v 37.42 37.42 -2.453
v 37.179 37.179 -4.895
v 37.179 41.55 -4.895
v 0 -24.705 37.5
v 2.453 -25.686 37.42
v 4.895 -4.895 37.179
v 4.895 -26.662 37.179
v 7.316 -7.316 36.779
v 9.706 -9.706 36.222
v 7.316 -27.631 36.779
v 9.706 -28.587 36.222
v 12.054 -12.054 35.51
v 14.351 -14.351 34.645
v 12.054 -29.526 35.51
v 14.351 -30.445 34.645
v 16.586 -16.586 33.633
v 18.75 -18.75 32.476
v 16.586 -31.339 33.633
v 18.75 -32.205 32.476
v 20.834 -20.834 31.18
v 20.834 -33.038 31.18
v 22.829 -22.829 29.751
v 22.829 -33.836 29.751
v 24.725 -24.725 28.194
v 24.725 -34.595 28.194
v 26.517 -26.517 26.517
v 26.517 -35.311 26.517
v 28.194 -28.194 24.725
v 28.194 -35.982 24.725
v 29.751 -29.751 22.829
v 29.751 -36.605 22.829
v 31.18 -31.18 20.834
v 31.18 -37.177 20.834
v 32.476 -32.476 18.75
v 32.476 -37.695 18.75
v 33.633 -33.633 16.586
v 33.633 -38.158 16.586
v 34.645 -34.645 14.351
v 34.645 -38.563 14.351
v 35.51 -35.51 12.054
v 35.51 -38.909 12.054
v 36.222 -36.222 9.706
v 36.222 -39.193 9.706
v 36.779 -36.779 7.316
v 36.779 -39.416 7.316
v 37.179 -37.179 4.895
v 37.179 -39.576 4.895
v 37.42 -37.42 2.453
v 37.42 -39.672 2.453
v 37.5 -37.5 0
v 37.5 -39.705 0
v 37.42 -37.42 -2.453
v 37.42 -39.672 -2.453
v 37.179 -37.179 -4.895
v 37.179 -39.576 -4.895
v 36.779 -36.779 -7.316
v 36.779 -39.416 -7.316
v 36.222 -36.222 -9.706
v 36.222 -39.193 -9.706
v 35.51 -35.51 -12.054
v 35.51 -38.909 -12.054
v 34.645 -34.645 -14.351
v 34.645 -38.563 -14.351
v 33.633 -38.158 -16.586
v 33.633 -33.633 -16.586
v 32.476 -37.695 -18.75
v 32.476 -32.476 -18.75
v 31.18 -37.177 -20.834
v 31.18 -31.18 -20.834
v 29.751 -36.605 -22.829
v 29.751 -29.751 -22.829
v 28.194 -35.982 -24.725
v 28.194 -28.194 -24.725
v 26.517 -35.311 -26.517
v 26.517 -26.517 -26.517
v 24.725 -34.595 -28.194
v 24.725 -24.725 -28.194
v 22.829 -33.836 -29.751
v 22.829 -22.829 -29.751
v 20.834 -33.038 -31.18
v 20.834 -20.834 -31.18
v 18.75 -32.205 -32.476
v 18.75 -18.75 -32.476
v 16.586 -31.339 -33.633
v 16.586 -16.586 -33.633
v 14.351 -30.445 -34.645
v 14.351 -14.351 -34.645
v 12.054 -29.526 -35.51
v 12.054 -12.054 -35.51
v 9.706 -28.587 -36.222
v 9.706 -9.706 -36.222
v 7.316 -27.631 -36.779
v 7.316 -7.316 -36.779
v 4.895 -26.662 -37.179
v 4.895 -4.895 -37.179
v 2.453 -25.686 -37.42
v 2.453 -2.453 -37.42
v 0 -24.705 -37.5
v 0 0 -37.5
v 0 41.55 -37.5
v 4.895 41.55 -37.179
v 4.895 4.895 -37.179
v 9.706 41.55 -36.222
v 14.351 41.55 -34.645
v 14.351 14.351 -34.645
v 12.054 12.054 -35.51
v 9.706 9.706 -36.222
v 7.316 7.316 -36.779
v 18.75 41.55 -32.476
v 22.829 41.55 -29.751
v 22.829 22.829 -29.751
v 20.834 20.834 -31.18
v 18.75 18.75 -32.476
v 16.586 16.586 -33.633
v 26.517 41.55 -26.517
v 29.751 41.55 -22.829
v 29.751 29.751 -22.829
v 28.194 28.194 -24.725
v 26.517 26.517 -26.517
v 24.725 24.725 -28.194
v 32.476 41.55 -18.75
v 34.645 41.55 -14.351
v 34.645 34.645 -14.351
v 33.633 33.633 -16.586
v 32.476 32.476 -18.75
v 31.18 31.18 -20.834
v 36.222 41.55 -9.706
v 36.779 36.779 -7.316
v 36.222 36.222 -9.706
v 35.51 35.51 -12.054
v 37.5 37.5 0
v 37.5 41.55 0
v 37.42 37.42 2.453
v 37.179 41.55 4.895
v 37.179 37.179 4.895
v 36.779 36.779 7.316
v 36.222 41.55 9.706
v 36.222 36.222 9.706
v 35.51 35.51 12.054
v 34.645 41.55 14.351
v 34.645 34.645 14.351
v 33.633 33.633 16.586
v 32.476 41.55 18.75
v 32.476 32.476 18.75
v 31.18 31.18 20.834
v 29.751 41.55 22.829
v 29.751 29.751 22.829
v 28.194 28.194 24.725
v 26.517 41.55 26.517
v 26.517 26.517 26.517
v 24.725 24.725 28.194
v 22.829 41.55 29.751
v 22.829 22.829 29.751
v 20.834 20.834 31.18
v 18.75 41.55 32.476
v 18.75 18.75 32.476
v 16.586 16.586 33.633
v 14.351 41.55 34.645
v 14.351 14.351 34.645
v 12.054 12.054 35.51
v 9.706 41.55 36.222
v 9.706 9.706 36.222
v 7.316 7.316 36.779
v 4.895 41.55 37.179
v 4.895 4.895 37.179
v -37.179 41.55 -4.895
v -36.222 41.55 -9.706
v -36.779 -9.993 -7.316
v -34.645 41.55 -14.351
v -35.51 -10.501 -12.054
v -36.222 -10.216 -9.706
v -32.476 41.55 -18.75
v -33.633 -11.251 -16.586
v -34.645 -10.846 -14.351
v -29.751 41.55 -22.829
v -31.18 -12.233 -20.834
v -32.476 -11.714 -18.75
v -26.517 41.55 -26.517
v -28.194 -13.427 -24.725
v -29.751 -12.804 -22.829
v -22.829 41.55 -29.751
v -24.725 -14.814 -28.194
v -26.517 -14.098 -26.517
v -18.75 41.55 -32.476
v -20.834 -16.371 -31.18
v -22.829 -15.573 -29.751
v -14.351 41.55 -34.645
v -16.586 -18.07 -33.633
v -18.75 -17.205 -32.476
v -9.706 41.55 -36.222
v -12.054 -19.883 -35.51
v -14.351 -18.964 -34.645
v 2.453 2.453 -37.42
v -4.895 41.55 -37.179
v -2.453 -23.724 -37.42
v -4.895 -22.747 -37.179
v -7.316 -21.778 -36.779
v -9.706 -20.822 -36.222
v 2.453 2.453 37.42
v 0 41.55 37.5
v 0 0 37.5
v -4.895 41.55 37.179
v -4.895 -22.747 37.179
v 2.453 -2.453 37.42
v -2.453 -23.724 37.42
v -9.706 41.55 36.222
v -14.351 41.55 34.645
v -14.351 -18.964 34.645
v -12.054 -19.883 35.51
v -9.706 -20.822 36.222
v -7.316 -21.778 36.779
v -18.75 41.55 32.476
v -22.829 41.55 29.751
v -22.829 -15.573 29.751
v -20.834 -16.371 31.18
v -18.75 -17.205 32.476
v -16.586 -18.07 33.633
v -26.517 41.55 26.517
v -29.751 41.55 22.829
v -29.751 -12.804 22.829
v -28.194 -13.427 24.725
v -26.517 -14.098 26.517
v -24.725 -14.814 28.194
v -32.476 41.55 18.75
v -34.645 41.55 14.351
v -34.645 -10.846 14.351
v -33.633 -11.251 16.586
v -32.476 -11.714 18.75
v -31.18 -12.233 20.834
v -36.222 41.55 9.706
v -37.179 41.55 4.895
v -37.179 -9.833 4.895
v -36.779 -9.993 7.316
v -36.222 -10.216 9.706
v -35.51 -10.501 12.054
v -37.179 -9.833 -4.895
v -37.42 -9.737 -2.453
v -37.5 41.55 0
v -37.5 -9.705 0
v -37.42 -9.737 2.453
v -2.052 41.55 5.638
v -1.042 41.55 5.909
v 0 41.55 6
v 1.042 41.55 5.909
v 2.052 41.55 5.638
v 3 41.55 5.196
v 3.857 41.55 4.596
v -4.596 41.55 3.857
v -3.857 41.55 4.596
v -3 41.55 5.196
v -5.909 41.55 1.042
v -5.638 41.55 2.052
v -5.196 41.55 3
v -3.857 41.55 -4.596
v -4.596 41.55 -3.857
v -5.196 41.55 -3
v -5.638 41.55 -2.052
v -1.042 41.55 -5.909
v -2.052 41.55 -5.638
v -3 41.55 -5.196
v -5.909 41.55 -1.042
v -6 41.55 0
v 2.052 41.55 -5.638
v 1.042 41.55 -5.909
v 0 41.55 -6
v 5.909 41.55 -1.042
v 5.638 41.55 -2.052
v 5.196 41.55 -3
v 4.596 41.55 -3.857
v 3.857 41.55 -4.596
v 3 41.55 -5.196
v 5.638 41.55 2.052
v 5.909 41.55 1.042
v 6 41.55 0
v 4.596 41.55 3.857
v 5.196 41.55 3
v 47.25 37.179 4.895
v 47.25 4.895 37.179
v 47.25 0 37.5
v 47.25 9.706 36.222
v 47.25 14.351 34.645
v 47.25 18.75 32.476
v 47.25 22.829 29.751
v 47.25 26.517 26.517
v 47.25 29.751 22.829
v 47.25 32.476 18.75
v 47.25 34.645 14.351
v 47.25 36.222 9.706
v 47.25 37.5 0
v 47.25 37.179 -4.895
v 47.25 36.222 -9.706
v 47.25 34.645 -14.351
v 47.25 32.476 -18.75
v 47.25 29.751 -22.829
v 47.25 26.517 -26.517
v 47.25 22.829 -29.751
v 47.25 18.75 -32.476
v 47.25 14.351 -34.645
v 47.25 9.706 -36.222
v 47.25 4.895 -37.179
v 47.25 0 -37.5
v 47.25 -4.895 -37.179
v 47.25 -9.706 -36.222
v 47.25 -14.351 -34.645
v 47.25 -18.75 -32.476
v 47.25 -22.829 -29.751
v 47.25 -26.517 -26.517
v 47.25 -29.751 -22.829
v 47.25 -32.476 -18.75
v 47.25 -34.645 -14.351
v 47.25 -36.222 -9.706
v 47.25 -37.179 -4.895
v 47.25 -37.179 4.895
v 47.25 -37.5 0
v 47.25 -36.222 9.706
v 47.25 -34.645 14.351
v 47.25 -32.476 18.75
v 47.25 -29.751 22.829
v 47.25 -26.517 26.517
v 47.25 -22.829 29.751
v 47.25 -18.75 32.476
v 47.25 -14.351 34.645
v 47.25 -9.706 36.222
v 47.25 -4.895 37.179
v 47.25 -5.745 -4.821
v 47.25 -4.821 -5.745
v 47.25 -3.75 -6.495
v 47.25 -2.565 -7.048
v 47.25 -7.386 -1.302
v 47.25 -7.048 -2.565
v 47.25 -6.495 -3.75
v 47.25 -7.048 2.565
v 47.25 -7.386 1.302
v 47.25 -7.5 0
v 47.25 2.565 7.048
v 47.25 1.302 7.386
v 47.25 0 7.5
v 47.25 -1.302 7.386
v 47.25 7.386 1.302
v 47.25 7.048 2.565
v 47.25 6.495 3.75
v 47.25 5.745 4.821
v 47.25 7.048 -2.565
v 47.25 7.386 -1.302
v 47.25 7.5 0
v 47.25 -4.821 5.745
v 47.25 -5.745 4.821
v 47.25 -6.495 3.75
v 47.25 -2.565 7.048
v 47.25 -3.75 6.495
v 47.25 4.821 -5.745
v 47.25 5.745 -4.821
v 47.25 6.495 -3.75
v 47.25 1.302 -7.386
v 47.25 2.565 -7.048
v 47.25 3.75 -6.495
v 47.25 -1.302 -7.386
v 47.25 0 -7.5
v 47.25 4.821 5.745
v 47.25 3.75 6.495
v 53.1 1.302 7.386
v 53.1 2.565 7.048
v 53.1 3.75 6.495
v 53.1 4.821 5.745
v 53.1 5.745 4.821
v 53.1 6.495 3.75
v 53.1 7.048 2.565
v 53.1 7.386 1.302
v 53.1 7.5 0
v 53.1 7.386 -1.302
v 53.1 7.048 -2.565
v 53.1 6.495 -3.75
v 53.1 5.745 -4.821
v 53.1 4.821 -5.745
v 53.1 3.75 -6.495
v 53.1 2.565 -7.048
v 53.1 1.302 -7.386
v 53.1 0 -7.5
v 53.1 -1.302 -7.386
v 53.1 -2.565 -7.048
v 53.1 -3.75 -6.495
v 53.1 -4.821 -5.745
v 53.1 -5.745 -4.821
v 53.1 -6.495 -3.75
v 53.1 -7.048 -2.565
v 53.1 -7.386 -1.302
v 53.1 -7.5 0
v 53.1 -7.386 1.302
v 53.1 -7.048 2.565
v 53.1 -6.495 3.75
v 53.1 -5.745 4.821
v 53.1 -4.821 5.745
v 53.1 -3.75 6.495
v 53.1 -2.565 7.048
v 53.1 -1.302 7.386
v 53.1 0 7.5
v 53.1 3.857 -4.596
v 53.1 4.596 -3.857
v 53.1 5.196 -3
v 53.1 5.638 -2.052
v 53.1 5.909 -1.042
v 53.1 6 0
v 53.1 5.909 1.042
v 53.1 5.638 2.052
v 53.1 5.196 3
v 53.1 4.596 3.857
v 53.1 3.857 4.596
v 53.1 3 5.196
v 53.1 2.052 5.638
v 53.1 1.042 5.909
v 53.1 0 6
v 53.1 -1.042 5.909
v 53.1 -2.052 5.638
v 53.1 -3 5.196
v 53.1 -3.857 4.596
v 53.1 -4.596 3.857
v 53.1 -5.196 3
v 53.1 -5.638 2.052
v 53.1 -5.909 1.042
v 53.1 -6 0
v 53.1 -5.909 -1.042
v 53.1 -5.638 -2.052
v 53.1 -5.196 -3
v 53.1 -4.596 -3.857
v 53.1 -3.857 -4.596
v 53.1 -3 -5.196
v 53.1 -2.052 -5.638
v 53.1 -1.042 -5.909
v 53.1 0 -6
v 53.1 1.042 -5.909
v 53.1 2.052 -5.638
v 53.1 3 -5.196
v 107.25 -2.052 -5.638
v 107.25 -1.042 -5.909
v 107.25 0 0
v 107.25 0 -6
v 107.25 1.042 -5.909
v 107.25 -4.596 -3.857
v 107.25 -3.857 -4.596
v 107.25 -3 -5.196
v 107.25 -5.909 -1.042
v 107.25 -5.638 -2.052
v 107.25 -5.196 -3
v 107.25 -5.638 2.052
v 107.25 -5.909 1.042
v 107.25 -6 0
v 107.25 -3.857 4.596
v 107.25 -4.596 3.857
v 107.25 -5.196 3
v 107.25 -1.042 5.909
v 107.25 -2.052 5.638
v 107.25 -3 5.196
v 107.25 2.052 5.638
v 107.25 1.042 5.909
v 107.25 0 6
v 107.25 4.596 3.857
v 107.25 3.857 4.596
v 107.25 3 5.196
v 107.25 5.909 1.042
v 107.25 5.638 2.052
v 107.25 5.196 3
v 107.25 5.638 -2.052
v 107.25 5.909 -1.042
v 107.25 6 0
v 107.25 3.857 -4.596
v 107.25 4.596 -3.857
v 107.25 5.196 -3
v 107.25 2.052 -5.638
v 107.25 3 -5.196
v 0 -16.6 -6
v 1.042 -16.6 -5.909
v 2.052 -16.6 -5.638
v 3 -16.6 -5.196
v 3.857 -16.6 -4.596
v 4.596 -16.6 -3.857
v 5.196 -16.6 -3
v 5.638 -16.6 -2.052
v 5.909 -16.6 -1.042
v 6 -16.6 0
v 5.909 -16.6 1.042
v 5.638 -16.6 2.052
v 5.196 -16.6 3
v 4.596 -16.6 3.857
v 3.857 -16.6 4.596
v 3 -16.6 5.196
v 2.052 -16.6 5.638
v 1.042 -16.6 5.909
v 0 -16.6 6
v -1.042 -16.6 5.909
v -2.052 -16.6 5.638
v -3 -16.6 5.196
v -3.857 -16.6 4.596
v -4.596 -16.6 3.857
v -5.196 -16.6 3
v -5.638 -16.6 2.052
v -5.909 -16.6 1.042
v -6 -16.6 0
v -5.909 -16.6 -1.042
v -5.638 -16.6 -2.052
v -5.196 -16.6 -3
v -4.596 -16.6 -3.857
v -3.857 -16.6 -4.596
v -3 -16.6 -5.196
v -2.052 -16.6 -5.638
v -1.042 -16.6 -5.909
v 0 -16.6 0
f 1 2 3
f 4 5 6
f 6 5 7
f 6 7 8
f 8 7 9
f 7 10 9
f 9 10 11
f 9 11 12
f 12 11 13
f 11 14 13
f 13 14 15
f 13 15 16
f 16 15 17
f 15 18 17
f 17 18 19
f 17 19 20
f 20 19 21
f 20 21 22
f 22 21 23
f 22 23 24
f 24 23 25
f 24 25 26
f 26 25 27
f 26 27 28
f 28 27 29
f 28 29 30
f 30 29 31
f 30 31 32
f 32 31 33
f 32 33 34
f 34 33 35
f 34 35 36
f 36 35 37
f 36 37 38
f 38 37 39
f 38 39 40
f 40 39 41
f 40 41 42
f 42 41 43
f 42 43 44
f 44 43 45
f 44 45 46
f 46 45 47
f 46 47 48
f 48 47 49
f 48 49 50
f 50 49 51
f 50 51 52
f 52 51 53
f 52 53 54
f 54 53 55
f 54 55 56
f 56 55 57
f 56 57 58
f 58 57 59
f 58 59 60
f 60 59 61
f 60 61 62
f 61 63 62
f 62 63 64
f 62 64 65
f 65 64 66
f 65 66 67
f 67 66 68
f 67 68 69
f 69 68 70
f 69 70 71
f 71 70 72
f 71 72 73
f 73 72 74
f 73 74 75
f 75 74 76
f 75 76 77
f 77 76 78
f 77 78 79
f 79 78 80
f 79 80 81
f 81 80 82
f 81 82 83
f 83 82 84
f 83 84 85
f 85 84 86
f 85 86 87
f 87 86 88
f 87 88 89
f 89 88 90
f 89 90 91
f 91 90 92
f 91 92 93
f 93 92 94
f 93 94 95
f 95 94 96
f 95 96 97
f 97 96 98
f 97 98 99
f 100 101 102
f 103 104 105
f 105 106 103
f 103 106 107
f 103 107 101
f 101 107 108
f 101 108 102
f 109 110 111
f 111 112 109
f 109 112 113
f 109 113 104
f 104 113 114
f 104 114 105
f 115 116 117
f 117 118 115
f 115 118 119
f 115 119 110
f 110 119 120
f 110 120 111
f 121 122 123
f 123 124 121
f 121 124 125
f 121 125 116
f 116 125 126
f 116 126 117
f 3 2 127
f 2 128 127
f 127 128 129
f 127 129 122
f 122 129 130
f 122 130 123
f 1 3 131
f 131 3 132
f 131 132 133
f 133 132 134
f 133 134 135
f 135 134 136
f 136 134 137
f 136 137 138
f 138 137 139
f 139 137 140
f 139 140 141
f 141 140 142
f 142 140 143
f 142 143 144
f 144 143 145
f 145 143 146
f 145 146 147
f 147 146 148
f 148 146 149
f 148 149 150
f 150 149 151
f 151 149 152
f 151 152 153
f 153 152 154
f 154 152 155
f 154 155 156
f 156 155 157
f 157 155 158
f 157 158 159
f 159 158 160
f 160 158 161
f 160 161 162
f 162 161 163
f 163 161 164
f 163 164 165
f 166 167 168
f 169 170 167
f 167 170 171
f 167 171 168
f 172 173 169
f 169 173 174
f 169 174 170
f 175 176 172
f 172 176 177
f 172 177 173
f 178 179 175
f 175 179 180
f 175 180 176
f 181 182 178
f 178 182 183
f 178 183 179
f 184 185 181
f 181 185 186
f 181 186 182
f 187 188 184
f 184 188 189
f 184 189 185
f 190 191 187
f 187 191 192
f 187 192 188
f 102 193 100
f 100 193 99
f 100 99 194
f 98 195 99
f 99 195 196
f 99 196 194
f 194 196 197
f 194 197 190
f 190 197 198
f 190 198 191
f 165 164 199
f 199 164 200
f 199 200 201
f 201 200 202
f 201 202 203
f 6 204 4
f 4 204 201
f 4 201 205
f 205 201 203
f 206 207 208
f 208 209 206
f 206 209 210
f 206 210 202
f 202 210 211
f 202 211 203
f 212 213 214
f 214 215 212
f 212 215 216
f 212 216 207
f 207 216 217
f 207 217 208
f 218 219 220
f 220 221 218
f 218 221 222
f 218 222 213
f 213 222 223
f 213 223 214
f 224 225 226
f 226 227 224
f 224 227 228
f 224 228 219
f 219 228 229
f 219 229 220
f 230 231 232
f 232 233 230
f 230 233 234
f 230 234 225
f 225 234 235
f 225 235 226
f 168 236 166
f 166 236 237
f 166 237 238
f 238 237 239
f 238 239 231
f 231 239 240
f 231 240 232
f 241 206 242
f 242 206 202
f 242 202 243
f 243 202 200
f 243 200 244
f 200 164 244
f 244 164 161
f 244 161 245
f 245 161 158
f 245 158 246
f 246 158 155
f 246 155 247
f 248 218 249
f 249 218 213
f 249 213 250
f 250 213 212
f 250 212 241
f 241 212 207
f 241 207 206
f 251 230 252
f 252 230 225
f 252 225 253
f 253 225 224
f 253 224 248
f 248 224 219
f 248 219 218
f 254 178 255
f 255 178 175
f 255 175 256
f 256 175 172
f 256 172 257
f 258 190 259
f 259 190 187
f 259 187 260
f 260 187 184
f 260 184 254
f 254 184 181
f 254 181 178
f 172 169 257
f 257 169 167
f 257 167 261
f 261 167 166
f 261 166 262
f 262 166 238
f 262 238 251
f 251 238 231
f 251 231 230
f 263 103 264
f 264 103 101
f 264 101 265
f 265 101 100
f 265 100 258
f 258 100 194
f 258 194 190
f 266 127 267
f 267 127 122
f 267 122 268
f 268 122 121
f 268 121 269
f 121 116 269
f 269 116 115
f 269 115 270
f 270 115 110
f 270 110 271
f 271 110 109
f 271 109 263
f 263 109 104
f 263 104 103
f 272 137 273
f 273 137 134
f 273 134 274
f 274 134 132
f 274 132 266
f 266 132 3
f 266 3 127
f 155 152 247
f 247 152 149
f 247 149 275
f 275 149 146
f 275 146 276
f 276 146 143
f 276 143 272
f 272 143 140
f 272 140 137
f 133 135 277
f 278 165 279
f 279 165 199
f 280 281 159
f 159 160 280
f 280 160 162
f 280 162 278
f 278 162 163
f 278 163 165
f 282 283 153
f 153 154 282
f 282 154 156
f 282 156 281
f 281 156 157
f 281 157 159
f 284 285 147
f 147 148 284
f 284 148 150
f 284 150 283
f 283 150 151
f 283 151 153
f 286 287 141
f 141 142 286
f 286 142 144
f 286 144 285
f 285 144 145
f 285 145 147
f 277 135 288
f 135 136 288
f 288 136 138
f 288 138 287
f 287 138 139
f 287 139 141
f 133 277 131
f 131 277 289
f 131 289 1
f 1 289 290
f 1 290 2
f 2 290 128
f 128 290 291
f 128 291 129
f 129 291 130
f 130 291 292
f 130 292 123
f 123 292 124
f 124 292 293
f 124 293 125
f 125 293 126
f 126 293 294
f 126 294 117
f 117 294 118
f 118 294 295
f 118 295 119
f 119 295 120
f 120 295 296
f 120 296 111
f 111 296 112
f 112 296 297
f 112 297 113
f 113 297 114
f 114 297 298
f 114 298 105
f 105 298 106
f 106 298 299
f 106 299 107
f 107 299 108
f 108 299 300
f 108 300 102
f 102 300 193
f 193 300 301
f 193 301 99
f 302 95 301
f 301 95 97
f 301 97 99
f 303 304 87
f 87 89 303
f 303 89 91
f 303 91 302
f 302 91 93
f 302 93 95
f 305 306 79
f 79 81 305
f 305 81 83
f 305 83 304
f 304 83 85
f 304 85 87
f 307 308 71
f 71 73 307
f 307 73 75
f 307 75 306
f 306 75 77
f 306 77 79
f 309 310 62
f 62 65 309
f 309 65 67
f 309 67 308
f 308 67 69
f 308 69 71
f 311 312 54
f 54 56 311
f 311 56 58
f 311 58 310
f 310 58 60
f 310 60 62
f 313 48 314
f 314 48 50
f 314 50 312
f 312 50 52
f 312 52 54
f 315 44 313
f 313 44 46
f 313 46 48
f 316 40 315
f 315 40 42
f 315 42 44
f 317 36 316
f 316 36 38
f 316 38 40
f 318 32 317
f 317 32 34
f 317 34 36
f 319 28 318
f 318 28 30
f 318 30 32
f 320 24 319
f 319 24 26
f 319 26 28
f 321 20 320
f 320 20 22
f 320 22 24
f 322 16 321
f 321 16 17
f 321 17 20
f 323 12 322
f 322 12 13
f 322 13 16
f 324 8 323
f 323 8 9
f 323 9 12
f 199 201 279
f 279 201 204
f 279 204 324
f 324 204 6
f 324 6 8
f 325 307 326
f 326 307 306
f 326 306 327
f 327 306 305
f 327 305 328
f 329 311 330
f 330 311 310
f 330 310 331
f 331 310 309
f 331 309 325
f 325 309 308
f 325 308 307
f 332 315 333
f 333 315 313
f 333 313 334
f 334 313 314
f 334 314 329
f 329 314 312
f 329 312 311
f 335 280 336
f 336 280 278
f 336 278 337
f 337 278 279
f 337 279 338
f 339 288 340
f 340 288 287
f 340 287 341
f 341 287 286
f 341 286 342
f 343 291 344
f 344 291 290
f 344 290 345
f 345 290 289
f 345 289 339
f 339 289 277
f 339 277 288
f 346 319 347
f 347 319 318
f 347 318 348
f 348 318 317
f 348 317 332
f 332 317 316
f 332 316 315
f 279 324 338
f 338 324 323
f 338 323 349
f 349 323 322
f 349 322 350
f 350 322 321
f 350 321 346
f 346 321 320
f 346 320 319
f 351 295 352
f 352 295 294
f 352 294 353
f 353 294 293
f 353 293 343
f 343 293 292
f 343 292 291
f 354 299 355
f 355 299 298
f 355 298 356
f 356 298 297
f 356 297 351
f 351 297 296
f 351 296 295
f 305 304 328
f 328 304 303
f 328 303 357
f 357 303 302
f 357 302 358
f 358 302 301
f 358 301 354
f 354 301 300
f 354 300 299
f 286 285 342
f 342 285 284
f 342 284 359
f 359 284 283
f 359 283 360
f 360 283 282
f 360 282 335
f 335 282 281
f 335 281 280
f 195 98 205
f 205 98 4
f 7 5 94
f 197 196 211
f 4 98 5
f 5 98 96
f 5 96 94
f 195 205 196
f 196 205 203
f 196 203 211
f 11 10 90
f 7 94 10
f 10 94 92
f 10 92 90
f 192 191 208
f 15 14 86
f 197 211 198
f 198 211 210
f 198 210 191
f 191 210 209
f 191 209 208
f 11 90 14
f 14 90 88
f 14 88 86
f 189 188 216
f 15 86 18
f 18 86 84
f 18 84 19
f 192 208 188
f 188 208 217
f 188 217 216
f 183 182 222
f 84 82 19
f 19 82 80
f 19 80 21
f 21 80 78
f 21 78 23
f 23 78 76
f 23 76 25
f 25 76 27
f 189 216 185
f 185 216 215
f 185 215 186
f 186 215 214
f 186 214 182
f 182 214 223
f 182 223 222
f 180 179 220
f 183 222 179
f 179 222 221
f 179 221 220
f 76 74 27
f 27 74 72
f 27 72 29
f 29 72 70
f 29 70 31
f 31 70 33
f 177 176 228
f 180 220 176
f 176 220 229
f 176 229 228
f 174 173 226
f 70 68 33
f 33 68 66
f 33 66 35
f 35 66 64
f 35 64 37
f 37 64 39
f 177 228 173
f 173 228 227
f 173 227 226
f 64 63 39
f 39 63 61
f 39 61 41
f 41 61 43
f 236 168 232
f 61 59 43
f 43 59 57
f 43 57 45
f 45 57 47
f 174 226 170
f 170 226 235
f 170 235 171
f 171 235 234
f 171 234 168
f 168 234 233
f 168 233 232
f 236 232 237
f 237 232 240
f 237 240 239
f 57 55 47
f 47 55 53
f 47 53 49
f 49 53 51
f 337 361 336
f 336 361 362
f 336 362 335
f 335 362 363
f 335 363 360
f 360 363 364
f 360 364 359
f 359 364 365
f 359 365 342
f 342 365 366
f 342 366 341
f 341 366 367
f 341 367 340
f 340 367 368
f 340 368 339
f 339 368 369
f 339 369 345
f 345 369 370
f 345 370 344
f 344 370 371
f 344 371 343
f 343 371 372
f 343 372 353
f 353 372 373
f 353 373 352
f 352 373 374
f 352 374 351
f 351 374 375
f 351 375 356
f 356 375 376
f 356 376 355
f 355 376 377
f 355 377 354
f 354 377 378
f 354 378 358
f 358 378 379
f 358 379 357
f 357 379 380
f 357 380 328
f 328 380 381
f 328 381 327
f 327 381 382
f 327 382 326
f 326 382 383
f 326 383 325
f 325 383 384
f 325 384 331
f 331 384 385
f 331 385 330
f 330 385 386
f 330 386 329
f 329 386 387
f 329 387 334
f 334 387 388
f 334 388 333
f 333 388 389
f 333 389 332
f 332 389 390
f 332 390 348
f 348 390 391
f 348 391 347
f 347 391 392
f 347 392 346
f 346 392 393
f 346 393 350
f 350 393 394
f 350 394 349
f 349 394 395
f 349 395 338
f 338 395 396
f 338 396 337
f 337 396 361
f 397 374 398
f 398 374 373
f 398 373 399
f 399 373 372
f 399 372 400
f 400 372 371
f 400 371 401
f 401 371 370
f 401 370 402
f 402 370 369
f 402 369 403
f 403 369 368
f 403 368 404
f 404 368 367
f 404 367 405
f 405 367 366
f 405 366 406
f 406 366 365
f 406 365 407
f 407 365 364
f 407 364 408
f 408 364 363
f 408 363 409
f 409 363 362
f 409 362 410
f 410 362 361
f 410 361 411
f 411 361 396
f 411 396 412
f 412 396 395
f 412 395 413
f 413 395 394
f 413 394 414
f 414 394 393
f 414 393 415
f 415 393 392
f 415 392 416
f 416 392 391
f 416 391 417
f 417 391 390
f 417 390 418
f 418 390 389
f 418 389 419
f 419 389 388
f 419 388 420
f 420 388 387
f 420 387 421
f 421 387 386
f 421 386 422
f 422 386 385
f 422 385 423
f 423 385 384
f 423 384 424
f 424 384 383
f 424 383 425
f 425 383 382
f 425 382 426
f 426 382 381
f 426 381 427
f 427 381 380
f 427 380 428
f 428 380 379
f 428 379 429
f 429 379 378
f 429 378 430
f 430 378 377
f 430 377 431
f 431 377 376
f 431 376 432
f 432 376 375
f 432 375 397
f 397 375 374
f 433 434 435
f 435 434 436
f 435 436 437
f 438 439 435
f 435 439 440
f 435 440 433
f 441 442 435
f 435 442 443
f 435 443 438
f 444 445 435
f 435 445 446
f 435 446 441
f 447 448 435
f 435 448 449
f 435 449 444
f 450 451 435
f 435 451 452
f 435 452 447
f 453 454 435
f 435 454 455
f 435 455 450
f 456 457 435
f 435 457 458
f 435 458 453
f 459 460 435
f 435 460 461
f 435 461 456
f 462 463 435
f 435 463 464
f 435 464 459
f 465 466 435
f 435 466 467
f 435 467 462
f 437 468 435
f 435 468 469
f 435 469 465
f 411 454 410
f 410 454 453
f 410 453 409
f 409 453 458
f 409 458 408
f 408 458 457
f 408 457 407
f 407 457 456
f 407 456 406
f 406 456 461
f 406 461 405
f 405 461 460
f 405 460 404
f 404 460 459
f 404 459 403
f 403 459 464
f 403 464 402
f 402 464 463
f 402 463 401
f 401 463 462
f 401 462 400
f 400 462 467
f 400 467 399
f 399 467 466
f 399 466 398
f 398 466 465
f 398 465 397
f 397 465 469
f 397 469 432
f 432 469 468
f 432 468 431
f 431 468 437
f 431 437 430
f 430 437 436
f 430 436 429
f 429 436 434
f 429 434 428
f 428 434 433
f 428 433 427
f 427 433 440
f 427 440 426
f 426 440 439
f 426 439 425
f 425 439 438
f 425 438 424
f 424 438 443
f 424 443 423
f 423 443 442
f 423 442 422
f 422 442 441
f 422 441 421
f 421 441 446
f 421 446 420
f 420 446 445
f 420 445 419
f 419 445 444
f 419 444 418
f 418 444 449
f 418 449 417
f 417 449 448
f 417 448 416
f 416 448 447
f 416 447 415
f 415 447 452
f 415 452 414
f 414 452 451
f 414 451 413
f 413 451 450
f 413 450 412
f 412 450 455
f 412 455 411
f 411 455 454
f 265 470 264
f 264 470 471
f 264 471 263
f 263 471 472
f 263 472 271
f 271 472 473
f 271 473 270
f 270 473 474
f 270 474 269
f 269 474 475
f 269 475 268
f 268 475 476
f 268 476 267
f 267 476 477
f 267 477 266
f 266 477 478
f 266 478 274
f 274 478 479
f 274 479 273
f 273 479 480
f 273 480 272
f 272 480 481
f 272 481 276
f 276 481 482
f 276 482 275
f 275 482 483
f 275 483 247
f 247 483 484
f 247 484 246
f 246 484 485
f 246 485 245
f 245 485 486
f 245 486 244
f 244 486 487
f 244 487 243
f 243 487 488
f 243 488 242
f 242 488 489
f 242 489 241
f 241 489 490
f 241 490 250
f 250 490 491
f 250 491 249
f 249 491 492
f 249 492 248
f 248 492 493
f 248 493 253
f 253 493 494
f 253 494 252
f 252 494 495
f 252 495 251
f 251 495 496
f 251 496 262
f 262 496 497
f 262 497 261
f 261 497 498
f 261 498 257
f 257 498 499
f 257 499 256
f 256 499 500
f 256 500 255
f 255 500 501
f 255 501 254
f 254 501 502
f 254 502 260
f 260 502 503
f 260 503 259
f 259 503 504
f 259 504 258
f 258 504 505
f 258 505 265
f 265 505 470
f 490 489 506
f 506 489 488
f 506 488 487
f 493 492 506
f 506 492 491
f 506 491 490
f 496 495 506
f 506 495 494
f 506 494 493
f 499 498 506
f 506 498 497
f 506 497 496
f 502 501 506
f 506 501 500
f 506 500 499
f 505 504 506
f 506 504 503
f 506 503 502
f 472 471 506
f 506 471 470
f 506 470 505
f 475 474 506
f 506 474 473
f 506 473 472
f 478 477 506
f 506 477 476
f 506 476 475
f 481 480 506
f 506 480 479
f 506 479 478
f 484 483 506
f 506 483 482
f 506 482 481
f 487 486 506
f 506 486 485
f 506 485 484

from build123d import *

# Parameters (mm, degrees)
SKETCH1_R                = 37.5
BOSS_EXTRUDE1_DEPTH      = 47.25
BOSS_EXTRUDE2_DEPTH      = 41.55
BOSS_EXTRUDE2_DEPTH_BACK = 39.70459341
SKETCH2_R                = 37.5
CUT_EXTRUDE1_DEPTH       = 74.247627948
CUT_EXTRUDE1_DEPTH_BACK  = 74.247627948
SKETCH4_R                = 6
BOSS_EXTRUDE3_DEPTH      = 60
SKETCH5_R                = 7.5
BOSS_EXTRUDE4_DEPTH      = 5.85
CUT_EXTRUDE2_DEPTH       = 140.682215941
CUT_EXTRUDE2_DEPTH_BACK  = 58.15
SKETCH6_R                = 6


with BuildPart() as part:
    # Sketch1 → Boss-Extrude1 (new body)
    with BuildSketch(Plane(origin=(0, 0, 0), x_dir=(0, 0, -1), z_dir=(1, 0, 0))):
        Circle(SKETCH1_R)
    extrude(amount=BOSS_EXTRUDE1_DEPTH)

    # Sketch2 → Boss-Extrude2 (add, two sides: drawn at the far end of the back side and taken through both)
    with BuildSketch(Plane(origin=(0, 0, 0), x_dir=(1, 0, 0), z_dir=(0, 1, 0)).offset(-BOSS_EXTRUDE2_DEPTH_BACK)):
        with Locations(Location((0, 0, 0), (0, 0, 270))):
            Circle(SKETCH2_R)
    extrude(amount=BOSS_EXTRUDE2_DEPTH + BOSS_EXTRUDE2_DEPTH_BACK)

    # Sketch3 → Cut-Extrude1 (cut, two sides: drawn at the far end of the back side and taken through both)
    with BuildSketch(Plane.XY.offset(-CUT_EXTRUDE1_DEPTH_BACK)):
        Polygon((37.5, -39.70459341), (-37.5, -39.70459341), (-37.5, -9.70456466), align=None)
    extrude(amount=CUT_EXTRUDE1_DEPTH + CUT_EXTRUDE1_DEPTH_BACK, mode=Mode.SUBTRACT)

    # Sketch4 → Boss-Extrude3 (add)
    with BuildSketch(Plane(origin=(47.25, 0, 0), x_dir=(0, 0, -1), z_dir=(1, 0, 0))):
        Circle(SKETCH4_R)
    extrude(amount=BOSS_EXTRUDE3_DEPTH)

    # Sketch5 → Boss-Extrude4 (add)
    with BuildSketch(Plane(origin=(47.25, 0, 0), x_dir=(0, 0, -1), z_dir=(1, 0, 0))):
        Circle(SKETCH5_R)
    extrude(amount=BOSS_EXTRUDE4_DEPTH)

    # Sketch6 → Cut-Extrude2 (cut, two sides: drawn at the far end of the back side and taken through both)
    with BuildSketch(Plane(origin=(0, 41.55, 0), x_dir=(1, 0, 0), z_dir=(0, 1, 0)).offset(-CUT_EXTRUDE2_DEPTH_BACK)):
        with Locations(Location((0, 0, 0), (0, 0, 90))):
            Circle(SKETCH6_R)
    extrude(amount=CUT_EXTRUDE2_DEPTH + CUT_EXTRUDE2_DEPTH_BACK, mode=Mode.SUBTRACT)


solid = part.part
